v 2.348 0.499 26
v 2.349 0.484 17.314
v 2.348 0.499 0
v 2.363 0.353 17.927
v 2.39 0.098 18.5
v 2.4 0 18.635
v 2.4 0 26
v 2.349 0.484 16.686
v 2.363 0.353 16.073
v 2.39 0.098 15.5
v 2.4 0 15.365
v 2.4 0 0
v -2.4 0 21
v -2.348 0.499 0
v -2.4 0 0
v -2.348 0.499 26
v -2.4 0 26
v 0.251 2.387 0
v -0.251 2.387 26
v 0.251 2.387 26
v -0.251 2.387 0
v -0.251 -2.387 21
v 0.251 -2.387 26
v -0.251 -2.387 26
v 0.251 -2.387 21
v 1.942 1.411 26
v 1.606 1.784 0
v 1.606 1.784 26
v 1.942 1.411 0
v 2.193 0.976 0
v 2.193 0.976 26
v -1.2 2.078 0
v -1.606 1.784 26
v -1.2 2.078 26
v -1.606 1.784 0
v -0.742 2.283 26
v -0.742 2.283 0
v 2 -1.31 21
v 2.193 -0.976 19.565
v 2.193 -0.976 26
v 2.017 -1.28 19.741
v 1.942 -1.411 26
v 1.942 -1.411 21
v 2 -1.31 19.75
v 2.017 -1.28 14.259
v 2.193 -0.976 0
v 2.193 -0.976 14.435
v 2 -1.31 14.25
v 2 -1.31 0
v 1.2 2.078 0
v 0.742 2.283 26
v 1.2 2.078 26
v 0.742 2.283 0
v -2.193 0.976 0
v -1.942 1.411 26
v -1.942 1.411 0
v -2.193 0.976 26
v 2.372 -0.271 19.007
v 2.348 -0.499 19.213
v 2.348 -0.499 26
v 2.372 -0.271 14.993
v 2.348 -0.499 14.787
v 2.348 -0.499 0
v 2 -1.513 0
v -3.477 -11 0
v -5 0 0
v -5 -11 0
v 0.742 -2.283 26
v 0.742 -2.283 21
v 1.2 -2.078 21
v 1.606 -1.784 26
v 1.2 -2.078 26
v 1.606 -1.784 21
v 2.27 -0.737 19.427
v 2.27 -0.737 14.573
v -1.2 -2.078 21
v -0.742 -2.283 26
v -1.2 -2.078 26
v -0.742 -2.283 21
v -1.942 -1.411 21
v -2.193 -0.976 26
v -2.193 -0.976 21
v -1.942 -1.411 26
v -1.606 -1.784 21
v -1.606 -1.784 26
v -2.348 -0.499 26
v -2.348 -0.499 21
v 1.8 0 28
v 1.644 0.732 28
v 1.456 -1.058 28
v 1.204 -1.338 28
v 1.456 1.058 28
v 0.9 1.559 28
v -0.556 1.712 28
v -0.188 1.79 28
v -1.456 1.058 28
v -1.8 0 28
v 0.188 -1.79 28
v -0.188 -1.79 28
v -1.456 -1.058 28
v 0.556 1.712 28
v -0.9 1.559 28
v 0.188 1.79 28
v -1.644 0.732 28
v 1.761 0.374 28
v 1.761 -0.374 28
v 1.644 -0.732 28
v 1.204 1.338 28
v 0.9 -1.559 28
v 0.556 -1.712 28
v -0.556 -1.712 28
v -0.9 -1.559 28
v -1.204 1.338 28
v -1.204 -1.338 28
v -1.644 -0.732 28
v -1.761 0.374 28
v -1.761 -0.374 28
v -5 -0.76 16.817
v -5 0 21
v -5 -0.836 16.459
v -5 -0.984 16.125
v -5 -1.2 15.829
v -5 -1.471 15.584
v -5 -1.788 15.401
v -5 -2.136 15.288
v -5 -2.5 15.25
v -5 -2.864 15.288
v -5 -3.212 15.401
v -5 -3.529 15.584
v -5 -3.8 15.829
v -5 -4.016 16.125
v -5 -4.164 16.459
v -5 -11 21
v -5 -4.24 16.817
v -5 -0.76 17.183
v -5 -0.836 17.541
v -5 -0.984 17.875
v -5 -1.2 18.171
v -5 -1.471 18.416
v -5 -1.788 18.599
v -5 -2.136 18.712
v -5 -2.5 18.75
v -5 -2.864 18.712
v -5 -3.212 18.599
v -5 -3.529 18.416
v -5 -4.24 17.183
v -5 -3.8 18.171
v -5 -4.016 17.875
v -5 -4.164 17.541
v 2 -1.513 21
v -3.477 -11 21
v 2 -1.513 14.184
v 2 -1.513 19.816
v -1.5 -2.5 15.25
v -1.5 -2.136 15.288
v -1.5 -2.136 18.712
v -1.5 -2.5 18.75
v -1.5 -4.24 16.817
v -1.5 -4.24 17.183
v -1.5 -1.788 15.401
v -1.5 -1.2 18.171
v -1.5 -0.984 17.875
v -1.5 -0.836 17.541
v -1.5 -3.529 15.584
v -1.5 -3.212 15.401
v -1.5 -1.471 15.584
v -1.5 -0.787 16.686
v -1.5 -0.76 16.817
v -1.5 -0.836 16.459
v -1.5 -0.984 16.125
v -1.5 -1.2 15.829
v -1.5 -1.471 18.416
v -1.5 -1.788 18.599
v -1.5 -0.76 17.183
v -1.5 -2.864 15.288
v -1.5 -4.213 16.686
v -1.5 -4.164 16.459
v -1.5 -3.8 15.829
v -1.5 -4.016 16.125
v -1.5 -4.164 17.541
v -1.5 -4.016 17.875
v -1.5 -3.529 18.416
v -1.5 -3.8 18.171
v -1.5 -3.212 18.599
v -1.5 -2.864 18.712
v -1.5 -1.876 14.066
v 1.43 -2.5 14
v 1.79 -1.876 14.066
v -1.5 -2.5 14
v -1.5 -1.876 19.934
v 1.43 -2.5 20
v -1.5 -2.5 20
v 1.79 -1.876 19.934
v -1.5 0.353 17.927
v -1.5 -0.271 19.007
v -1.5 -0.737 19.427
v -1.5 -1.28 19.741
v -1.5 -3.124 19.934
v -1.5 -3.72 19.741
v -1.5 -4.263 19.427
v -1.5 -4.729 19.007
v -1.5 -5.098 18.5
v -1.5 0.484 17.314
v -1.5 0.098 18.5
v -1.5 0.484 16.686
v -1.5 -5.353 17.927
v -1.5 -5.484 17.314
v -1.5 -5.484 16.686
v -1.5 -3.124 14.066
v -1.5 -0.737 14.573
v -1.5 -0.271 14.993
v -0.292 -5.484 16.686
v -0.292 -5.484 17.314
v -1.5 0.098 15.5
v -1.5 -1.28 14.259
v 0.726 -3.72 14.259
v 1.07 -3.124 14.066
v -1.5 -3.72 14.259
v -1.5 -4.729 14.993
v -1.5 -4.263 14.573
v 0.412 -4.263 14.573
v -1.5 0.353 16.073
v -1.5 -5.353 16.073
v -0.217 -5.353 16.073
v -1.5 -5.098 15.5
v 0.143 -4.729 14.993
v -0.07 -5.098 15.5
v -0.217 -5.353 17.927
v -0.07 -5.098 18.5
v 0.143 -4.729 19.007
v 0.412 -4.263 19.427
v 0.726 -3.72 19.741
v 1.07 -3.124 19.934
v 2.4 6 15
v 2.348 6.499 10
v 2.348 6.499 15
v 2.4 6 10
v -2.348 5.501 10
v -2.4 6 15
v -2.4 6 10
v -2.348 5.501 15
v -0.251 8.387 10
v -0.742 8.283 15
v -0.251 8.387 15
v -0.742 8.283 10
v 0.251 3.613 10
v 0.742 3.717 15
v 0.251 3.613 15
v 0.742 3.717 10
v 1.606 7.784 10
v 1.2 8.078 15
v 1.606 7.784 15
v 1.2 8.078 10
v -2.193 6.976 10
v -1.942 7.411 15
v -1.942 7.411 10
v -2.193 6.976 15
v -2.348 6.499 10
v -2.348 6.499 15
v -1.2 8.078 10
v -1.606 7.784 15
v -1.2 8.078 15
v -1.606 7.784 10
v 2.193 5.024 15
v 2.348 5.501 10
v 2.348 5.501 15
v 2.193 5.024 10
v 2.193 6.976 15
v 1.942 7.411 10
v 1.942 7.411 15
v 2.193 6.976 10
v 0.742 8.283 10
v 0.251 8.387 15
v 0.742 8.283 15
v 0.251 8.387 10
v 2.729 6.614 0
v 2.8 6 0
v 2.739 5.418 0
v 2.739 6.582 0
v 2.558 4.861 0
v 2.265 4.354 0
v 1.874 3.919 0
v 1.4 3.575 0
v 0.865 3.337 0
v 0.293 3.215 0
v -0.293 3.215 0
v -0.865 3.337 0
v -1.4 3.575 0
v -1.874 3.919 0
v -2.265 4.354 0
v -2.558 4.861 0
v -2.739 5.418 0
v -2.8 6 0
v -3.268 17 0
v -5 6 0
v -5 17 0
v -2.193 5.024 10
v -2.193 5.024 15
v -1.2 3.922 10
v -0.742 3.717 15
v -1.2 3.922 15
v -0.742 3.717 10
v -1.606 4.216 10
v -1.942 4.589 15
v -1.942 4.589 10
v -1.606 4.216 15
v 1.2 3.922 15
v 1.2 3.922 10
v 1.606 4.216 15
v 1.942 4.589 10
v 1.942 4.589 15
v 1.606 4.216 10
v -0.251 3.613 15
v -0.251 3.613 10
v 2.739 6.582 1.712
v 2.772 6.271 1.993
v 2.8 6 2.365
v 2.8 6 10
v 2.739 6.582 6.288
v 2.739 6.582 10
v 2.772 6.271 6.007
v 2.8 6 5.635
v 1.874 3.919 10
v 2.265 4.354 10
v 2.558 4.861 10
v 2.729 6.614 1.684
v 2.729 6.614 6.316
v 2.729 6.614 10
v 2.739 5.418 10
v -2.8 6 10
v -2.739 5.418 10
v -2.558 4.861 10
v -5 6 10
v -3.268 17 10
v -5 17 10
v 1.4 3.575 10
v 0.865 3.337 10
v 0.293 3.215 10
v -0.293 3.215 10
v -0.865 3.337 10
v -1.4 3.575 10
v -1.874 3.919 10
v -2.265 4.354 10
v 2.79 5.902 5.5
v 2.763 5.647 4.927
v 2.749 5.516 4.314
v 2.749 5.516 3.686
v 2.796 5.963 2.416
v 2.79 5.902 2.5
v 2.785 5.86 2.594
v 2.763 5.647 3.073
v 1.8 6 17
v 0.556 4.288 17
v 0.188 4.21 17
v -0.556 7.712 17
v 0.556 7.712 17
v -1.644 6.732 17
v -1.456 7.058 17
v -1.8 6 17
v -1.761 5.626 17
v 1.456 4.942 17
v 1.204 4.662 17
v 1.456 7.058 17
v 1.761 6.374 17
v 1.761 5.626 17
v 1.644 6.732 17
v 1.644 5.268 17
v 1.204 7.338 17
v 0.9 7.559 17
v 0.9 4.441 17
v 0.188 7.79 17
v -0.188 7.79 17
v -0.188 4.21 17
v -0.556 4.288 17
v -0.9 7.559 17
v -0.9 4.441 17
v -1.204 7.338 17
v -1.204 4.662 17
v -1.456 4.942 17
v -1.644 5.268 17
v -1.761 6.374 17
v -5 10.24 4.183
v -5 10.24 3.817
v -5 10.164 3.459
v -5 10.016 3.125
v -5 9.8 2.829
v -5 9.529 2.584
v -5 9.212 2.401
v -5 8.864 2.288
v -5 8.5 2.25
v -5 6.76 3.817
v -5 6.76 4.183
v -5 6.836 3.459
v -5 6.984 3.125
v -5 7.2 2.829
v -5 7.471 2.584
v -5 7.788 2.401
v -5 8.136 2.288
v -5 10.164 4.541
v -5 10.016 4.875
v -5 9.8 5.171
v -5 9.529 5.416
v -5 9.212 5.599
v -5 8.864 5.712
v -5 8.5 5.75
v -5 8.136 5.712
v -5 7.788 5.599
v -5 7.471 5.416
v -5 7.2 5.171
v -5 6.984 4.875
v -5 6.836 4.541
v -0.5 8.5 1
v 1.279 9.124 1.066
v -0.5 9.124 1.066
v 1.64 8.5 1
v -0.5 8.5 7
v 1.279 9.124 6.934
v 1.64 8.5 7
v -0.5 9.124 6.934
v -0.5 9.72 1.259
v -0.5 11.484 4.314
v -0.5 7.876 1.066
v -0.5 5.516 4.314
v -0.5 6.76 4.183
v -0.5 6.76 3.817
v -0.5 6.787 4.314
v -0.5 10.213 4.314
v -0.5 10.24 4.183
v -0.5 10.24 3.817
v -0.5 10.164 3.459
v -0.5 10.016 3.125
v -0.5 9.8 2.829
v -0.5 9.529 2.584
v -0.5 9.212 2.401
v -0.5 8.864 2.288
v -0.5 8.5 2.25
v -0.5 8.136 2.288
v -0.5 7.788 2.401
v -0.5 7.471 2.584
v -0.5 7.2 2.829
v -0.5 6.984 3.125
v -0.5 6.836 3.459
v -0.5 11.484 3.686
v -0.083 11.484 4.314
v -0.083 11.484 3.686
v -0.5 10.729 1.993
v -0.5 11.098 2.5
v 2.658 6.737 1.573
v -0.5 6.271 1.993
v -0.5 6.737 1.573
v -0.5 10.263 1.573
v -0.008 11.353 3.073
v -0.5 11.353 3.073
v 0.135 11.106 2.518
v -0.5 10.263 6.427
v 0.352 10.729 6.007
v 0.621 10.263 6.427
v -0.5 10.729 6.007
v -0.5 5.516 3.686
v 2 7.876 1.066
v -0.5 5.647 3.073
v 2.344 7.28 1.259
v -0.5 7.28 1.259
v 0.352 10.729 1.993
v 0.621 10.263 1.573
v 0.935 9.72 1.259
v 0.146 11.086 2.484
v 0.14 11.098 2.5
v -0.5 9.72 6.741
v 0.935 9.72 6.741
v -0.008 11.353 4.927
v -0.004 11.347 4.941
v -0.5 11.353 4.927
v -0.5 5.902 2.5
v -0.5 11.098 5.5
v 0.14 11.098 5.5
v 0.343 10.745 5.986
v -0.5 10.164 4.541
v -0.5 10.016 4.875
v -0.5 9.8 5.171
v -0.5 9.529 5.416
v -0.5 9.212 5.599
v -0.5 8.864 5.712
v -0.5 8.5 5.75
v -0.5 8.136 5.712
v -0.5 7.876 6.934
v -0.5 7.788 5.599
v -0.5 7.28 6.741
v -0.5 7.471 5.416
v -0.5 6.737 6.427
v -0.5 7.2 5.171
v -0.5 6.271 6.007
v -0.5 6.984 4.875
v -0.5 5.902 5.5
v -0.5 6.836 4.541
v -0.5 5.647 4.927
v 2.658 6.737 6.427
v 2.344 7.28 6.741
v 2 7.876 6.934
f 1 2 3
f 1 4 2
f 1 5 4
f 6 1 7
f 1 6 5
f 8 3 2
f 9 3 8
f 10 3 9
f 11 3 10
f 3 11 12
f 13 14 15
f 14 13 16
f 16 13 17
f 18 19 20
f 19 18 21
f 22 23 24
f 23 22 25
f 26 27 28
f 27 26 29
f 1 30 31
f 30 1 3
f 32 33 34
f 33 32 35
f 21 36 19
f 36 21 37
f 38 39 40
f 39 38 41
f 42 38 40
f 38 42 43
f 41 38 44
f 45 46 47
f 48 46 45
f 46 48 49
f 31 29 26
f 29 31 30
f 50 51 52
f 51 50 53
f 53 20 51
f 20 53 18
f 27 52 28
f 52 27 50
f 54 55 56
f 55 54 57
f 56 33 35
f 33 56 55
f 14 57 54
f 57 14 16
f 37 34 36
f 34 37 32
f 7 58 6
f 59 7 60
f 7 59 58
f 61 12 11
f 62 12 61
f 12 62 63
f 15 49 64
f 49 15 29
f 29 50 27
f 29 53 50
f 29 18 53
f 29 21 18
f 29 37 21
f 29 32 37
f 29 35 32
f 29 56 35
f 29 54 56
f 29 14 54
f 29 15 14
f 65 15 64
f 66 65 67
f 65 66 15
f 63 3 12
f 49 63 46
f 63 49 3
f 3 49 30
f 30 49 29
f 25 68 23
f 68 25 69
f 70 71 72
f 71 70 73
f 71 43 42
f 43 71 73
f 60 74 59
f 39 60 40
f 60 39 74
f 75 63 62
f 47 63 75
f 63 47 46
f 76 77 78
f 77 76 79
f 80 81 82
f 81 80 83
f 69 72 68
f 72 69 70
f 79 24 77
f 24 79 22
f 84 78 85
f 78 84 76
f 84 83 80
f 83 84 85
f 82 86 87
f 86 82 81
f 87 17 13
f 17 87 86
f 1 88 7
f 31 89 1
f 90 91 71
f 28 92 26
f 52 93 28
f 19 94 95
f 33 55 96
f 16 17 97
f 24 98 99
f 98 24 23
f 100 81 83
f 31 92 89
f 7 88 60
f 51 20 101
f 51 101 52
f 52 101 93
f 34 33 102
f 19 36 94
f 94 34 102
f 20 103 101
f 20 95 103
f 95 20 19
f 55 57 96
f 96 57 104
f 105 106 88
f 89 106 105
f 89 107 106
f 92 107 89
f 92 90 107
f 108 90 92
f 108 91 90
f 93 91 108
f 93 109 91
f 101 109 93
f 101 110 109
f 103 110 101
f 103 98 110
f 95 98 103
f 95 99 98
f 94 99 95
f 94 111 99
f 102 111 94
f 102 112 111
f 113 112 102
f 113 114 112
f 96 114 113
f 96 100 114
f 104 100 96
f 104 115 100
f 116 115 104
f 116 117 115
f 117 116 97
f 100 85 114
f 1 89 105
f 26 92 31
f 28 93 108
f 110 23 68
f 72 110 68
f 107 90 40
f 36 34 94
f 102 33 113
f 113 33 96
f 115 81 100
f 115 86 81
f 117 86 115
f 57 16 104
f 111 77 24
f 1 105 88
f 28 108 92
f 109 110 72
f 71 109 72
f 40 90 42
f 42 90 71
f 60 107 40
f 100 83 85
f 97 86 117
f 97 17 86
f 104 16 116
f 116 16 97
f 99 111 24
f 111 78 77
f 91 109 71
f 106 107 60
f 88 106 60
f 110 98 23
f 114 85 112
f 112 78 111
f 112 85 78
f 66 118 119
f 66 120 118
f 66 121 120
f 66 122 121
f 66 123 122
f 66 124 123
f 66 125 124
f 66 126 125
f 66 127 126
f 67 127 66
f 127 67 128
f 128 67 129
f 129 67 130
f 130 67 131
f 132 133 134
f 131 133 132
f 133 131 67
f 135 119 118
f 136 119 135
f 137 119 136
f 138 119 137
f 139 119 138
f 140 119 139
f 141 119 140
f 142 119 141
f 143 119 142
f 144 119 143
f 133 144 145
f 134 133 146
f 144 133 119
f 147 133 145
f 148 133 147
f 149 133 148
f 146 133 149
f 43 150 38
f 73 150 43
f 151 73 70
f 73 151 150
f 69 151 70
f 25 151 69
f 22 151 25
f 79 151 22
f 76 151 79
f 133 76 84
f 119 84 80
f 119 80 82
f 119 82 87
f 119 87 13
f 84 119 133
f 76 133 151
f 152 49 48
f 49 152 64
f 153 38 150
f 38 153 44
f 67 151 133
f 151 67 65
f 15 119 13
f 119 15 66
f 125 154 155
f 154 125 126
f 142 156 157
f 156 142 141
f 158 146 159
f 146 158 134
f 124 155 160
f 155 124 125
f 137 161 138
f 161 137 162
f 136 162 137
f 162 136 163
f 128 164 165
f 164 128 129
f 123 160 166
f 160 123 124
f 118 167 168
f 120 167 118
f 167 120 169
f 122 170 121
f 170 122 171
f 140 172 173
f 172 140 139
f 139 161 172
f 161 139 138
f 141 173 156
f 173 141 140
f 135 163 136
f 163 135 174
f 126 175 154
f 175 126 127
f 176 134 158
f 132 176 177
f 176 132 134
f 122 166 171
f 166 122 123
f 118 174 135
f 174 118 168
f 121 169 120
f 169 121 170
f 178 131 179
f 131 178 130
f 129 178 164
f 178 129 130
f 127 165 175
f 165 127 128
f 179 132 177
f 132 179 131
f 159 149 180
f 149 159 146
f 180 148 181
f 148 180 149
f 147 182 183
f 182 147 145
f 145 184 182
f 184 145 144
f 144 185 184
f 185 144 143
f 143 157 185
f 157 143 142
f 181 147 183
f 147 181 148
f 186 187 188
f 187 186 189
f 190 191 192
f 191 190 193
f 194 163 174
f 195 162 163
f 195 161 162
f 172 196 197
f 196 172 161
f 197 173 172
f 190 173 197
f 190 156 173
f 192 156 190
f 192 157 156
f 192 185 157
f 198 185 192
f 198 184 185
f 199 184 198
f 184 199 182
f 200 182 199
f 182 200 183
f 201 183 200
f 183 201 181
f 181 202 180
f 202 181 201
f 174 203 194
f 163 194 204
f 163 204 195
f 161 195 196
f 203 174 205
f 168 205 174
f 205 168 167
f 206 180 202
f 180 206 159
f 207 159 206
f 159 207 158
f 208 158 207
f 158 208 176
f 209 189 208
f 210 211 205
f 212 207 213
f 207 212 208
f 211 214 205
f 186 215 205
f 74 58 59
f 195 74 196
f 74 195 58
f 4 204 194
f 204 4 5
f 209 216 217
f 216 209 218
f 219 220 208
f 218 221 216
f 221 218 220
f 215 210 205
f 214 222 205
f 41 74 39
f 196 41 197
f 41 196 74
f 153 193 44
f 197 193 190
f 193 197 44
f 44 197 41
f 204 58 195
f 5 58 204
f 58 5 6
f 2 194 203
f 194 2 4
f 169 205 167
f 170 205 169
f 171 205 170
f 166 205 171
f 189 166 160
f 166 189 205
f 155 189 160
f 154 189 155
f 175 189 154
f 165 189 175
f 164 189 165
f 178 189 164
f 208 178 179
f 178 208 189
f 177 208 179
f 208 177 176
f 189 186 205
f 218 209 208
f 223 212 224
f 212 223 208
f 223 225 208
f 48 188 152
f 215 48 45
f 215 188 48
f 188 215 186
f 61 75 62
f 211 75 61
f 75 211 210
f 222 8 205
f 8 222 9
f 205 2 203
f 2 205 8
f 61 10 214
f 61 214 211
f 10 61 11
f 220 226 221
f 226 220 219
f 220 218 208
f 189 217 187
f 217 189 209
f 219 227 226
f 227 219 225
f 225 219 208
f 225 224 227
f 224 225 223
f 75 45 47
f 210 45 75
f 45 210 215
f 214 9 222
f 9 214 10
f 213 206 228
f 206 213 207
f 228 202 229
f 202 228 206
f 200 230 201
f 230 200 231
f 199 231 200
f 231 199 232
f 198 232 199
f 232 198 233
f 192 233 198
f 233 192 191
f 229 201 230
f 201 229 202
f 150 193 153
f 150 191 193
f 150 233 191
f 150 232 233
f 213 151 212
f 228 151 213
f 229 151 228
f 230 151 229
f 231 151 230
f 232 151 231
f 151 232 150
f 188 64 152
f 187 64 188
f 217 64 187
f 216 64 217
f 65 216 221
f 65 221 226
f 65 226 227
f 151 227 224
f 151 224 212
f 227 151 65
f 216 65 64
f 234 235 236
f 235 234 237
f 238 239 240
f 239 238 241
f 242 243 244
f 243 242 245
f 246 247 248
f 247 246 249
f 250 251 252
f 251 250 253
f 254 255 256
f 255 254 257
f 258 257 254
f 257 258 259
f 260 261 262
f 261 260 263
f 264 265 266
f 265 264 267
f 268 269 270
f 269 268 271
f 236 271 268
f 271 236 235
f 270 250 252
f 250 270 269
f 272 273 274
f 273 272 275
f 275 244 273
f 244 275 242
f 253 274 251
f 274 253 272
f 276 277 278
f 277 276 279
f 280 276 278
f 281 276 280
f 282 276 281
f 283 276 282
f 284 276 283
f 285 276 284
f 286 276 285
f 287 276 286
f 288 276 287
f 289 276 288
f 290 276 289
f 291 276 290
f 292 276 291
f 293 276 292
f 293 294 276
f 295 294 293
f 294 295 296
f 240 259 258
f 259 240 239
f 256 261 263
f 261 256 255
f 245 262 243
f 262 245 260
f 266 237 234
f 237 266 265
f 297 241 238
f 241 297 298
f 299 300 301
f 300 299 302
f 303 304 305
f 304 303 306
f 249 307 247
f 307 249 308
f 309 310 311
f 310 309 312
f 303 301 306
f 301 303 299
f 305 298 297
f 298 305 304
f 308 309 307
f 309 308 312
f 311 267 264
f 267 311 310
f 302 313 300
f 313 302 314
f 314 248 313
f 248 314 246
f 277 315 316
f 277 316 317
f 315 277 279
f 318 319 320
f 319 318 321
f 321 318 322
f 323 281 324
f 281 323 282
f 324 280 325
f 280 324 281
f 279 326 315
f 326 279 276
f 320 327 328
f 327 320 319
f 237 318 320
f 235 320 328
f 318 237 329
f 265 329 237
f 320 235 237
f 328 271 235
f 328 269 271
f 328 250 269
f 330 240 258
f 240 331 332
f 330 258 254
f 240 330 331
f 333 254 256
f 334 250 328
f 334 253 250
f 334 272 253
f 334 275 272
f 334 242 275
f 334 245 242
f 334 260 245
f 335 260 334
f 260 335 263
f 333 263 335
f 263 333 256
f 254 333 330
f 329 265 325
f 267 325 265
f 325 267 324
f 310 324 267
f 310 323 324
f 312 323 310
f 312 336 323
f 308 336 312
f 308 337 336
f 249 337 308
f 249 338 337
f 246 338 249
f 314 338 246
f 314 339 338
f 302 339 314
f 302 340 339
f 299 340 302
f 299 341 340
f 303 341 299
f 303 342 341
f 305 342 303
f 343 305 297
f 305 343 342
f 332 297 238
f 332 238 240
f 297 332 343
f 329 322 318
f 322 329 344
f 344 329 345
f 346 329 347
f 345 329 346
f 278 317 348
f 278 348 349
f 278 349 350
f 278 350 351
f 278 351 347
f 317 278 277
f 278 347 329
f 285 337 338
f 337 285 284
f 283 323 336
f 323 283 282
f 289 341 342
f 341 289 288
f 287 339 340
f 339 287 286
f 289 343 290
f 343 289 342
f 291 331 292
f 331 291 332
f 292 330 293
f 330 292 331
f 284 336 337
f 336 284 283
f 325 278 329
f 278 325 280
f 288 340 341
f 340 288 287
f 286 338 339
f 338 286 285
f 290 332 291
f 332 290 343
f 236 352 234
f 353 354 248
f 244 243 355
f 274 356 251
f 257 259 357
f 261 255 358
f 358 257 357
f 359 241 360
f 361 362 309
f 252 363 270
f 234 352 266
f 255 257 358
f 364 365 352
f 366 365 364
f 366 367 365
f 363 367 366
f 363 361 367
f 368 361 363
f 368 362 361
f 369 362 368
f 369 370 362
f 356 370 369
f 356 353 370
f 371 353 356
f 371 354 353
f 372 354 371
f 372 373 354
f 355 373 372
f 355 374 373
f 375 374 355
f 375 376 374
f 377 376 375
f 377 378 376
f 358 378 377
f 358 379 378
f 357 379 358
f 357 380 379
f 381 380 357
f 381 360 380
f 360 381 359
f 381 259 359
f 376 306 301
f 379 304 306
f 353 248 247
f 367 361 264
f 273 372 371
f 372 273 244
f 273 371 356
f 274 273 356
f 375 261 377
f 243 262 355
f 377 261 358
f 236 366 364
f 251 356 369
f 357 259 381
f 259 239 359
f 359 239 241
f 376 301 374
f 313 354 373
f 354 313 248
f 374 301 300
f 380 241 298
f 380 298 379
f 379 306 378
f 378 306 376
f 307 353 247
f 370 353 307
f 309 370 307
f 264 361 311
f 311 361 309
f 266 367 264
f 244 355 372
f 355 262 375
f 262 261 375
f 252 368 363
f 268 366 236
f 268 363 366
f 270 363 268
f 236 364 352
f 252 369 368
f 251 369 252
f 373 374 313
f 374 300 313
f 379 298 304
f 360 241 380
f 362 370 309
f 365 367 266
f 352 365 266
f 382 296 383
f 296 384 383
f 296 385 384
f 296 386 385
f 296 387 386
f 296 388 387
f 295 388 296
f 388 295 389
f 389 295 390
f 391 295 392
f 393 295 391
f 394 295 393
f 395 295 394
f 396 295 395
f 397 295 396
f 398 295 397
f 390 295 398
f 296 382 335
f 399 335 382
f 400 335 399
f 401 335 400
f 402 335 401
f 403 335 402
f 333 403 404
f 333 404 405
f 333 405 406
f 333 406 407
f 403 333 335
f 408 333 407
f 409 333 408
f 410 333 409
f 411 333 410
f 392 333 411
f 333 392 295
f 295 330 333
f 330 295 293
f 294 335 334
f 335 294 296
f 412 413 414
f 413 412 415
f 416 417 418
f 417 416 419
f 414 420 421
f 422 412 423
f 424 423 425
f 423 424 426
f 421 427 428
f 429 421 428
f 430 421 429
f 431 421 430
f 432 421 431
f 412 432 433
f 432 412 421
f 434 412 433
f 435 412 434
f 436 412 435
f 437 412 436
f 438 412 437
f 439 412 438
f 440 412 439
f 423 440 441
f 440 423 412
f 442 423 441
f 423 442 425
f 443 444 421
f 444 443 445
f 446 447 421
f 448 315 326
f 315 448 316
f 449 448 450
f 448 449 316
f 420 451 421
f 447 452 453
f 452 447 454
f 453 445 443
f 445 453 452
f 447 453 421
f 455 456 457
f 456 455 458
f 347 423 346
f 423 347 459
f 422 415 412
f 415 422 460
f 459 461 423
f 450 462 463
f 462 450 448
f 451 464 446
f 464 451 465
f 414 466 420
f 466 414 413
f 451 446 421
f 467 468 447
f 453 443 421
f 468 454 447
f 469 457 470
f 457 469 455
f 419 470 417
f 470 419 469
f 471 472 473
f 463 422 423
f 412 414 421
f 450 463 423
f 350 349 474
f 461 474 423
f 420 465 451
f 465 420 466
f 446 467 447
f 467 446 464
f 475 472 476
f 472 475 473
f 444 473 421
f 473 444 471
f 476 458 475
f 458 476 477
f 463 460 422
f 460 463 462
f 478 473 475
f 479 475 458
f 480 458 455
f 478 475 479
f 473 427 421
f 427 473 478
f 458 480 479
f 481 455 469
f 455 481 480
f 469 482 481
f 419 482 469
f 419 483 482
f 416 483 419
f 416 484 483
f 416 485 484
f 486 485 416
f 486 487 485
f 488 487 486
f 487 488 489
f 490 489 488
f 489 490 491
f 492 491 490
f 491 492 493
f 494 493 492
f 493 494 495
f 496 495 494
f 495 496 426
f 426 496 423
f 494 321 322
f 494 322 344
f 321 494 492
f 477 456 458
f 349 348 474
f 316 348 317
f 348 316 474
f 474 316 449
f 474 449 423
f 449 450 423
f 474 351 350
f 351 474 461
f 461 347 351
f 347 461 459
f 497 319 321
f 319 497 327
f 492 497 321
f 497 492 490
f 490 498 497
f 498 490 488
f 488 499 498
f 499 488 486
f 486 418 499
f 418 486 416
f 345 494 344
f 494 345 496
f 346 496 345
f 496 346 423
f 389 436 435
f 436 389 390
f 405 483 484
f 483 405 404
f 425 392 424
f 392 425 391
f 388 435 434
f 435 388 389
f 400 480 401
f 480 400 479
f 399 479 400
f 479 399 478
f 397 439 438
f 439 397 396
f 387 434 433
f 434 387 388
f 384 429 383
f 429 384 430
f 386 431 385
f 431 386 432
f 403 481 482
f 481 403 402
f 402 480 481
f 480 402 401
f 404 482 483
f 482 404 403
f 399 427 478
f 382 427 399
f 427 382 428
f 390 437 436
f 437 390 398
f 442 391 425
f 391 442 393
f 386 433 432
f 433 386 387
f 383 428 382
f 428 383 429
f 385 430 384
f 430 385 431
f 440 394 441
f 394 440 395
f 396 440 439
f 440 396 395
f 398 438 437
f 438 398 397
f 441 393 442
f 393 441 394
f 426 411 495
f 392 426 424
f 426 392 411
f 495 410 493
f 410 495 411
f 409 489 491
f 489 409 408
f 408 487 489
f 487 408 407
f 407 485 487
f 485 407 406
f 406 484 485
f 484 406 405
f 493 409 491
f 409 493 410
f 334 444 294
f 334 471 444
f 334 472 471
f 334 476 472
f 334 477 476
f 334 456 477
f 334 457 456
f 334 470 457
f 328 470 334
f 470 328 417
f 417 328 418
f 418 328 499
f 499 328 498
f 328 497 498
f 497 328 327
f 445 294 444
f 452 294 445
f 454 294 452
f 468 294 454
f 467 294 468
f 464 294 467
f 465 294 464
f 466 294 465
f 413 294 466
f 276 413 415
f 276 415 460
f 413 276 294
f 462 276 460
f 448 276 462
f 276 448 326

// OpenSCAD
// PRUSA iteration3
// RAMBo cover hinges
// GNU GPL v3
// Josef Průša <iam@josefprusa.cz> and contributors
// http://www.reprap.org/wiki/Prusa_Mendel
// http://prusamendel.org

module upper_hinge()
{
difference()    
{
    union(){
     // body
     cylinder( h = 26, r = 2.4, $fn=30); 
     translate([0,0,26]) cylinder( h = 2, r1 = 2.4, r2 = 1.8, $fn=30); 
     translate( [ -5 , -11 , 0 ] ) cube( [ 7 , 11 , 21 ] );  
    }
     // M3 screw hole
     translate( [ -12.5 , -2.5 , 17 ] ) rotate( [0,90,0] ) cylinder( h = 20, r = 1.75, $fn=30);  
     translate( [ -1.5 , -2.5 , 17 ] ) rotate( [0,90,0] ) cylinder( h = 9, r = 3, $fn=30); 
     // angle cut
     translate([-2.9,-20,-1]) rotate([0,0,60]) cube([25,5,26]);   
}
}

module lower_hinge()
{
difference()
{   
   union(){ 
    // body   
    translate( [ 0 , 6 , 0 ] ) cylinder( h = 15, r = 2.4, $fn=30); 
    translate( [ 0 , 6 , 0 ] ) cylinder( h = 10, r = 2.8, $fn=30);  
    translate( [ 0 , 6 , 15 ] ) cylinder( h = 2, r1 = 2.4, r2=1.8, $fn=30);  
    translate( [ -5 , 6 , 0 ] ) cube( [ 7 , 11 , 10 ] ); 
   }
    // M3 screw
    translate( [ -0.5 , 8.5 , 4 ] ) rotate( [0,90,0] ) cylinder( h = 20, r = 3, $fn=30); 
    translate( [ -12 , 8.5 , 4 ] ) rotate( [0,90,0] ) cylinder( h = 20, r = 1.75, $fn=30); 
    // angle cut
    translate([-5,20,-1]) rotate([0,0,-60]) cube([20,5,20]);   
}
}


upper_hinge();
lower_hinge();
